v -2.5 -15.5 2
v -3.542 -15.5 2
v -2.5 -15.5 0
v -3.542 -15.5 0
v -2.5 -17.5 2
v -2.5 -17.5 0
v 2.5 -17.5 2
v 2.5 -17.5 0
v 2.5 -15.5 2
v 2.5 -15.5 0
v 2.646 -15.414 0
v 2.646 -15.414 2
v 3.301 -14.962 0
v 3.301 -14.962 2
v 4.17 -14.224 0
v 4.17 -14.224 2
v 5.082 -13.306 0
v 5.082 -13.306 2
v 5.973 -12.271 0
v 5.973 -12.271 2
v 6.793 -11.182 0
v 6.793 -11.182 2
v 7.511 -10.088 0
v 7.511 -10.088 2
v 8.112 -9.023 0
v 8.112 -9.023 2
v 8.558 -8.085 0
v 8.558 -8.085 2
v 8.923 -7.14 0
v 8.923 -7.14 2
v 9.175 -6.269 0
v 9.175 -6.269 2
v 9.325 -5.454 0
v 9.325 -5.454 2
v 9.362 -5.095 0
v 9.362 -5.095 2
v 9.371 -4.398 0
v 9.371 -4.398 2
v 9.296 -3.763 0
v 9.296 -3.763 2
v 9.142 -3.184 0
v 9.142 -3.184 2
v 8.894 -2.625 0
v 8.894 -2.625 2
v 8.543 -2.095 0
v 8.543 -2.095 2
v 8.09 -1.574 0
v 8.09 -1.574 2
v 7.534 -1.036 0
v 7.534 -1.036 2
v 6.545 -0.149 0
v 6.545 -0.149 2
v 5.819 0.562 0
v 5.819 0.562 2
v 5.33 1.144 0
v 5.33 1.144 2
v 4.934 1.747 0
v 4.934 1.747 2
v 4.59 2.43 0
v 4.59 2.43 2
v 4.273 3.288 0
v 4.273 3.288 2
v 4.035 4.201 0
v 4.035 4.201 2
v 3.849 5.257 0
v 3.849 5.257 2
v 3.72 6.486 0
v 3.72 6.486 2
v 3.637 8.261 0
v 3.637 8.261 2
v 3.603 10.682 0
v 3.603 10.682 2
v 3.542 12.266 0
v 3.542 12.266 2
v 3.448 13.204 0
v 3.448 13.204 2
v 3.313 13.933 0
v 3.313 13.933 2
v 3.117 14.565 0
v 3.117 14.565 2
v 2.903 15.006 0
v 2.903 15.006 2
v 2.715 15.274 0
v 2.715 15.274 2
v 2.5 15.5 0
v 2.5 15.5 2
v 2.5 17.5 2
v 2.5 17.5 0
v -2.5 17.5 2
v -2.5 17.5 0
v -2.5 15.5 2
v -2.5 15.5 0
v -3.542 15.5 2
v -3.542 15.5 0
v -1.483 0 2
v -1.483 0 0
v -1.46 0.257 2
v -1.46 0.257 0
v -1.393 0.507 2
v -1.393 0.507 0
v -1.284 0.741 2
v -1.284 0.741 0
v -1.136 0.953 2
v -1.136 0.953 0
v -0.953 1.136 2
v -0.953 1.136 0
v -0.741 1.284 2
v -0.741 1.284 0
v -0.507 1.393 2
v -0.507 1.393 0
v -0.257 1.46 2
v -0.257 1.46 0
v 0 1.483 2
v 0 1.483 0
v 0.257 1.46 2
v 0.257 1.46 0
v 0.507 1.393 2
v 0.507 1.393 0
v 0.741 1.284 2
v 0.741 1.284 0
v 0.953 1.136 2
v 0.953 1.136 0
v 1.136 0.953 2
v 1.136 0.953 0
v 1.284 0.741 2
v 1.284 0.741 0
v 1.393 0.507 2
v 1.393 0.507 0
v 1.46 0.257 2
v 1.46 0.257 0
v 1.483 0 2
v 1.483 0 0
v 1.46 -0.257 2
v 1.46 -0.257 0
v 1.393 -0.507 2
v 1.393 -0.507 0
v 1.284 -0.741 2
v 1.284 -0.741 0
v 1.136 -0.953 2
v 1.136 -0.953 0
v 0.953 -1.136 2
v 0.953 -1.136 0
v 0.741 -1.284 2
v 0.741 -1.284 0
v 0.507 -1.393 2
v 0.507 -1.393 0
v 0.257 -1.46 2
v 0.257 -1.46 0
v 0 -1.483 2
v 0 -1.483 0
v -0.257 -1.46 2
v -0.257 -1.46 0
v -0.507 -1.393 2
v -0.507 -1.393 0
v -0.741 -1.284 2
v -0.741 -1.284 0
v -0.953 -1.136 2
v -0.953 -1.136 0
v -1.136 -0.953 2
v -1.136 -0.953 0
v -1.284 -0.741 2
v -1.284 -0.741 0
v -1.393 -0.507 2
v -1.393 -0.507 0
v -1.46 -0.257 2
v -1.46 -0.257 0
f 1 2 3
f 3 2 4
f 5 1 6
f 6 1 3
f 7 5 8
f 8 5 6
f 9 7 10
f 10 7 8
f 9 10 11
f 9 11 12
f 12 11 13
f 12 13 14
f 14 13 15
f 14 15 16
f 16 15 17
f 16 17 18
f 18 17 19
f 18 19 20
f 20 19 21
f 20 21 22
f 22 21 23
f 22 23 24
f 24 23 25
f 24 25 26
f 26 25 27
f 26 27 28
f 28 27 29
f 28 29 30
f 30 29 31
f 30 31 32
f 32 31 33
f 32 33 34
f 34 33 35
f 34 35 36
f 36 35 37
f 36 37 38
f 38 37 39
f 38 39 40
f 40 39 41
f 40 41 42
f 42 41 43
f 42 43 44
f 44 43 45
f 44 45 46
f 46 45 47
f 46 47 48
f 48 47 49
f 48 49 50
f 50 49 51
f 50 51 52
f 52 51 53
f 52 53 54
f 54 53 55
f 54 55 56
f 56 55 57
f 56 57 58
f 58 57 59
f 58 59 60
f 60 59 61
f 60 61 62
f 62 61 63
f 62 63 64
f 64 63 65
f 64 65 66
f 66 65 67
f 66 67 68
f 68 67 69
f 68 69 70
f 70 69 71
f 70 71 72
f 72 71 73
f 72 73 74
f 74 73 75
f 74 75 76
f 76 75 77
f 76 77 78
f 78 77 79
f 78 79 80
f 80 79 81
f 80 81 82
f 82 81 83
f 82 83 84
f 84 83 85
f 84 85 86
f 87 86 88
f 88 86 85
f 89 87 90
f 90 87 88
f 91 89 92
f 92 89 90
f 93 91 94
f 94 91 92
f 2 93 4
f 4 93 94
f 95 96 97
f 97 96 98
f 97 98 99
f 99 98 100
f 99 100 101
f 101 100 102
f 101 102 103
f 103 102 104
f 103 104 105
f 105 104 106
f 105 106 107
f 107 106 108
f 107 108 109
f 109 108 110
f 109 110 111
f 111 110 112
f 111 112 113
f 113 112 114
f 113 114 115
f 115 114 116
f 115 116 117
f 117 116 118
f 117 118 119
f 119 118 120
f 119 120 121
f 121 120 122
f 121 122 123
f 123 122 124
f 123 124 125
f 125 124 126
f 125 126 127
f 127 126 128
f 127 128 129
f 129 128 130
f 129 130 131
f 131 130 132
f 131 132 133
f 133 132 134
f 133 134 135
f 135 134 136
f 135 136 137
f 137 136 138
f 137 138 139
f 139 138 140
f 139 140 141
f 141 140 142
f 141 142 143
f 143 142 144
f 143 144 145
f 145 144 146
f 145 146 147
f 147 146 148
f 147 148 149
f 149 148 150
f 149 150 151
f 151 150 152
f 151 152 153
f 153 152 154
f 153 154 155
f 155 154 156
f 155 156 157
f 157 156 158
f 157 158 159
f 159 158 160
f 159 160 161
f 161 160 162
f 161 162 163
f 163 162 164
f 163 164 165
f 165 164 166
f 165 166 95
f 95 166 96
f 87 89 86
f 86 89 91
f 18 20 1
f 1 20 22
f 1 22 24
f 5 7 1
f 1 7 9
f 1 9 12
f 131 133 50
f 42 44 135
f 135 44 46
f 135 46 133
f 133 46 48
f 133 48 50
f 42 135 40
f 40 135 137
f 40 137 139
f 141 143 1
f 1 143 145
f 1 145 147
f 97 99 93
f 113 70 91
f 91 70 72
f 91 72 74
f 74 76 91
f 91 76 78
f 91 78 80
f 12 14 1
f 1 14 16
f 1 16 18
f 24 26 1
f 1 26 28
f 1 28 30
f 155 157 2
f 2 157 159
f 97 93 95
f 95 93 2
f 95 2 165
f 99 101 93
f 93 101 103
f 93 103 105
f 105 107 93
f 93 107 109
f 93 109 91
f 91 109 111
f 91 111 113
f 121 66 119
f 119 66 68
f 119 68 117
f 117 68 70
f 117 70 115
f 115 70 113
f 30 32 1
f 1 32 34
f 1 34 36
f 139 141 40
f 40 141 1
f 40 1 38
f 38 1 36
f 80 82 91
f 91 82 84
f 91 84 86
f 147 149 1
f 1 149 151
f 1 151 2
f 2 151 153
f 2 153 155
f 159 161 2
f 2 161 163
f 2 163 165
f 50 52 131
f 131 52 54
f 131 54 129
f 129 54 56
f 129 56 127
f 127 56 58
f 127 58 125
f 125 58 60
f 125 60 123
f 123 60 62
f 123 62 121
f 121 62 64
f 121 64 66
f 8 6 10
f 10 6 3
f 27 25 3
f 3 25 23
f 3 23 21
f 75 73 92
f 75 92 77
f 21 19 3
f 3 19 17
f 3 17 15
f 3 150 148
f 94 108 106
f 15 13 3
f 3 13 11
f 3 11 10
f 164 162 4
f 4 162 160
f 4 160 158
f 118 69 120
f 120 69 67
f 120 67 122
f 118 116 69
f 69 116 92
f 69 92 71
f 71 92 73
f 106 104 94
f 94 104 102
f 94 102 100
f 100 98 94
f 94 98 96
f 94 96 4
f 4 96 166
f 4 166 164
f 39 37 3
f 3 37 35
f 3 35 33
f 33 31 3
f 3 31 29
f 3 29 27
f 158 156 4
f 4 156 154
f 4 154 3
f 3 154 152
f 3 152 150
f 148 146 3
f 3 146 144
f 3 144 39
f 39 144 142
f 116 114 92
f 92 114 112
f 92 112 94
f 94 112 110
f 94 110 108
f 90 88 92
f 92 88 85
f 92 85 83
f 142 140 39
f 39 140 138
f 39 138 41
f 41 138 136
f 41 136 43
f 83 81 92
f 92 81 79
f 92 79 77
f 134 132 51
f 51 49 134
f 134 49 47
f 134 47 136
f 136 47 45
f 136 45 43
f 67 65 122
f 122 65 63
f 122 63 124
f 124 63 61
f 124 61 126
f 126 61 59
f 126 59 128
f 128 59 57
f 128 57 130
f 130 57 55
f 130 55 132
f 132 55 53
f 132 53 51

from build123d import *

# Parameters (mm, degrees)
CROQUIS1_W              = 5
CROQUIS1_H              = 2
CROQUIS1_R              = 1.48280389
SALIENTE_EXTRUIR1_DEPTH = 2


with BuildPart() as part:
    # Croquis1 → Saliente-Extruir1 (new body)
    # profile 1 of 3: a face of its own
    with BuildSketch(Plane.XY):
        with Locations((0, 16.5)):
            Rectangle(CROQUIS1_W, CROQUIS1_H)
    # profile 2 of 3: a face of its own
    with BuildSketch(Plane.XY):
        with BuildLine():
            Line((2.5, 15.5), (-2.5, 15.5))
            Line((-2.5, 15.5), (-3.542279833, 15.5))
            Line((-3.542279833, 15.5), (-3.542279833, -15.5))
            Line((-3.542279833, -15.5), (-2.5, -15.5))
            Line((-2.5, -15.5), (2.5, -15.5))
            add(Edge.make_bspline(
                [(2.5, 15.5), (4.778408881, 13.483435517), (1.403134335, 2.447360993), (13.063981649, -3.922799688), (5.481738283, -13.819921802), (2.5, -15.5)],
                knots=[0, 0, 0, 0, 0.423142863, 0.573502556, 1, 1, 1, 1], degree=3))
        make_face()
        Circle(CROQUIS1_R, mode=Mode.SUBTRACT)
    # profile 3 of 3: a face of its own
    with BuildSketch(Plane.XY):
        with Locations((0, -16.5)):
            Rectangle(CROQUIS1_W, CROQUIS1_H)
    extrude(amount=SALIENTE_EXTRUIR1_DEPTH)


solid = part.part
